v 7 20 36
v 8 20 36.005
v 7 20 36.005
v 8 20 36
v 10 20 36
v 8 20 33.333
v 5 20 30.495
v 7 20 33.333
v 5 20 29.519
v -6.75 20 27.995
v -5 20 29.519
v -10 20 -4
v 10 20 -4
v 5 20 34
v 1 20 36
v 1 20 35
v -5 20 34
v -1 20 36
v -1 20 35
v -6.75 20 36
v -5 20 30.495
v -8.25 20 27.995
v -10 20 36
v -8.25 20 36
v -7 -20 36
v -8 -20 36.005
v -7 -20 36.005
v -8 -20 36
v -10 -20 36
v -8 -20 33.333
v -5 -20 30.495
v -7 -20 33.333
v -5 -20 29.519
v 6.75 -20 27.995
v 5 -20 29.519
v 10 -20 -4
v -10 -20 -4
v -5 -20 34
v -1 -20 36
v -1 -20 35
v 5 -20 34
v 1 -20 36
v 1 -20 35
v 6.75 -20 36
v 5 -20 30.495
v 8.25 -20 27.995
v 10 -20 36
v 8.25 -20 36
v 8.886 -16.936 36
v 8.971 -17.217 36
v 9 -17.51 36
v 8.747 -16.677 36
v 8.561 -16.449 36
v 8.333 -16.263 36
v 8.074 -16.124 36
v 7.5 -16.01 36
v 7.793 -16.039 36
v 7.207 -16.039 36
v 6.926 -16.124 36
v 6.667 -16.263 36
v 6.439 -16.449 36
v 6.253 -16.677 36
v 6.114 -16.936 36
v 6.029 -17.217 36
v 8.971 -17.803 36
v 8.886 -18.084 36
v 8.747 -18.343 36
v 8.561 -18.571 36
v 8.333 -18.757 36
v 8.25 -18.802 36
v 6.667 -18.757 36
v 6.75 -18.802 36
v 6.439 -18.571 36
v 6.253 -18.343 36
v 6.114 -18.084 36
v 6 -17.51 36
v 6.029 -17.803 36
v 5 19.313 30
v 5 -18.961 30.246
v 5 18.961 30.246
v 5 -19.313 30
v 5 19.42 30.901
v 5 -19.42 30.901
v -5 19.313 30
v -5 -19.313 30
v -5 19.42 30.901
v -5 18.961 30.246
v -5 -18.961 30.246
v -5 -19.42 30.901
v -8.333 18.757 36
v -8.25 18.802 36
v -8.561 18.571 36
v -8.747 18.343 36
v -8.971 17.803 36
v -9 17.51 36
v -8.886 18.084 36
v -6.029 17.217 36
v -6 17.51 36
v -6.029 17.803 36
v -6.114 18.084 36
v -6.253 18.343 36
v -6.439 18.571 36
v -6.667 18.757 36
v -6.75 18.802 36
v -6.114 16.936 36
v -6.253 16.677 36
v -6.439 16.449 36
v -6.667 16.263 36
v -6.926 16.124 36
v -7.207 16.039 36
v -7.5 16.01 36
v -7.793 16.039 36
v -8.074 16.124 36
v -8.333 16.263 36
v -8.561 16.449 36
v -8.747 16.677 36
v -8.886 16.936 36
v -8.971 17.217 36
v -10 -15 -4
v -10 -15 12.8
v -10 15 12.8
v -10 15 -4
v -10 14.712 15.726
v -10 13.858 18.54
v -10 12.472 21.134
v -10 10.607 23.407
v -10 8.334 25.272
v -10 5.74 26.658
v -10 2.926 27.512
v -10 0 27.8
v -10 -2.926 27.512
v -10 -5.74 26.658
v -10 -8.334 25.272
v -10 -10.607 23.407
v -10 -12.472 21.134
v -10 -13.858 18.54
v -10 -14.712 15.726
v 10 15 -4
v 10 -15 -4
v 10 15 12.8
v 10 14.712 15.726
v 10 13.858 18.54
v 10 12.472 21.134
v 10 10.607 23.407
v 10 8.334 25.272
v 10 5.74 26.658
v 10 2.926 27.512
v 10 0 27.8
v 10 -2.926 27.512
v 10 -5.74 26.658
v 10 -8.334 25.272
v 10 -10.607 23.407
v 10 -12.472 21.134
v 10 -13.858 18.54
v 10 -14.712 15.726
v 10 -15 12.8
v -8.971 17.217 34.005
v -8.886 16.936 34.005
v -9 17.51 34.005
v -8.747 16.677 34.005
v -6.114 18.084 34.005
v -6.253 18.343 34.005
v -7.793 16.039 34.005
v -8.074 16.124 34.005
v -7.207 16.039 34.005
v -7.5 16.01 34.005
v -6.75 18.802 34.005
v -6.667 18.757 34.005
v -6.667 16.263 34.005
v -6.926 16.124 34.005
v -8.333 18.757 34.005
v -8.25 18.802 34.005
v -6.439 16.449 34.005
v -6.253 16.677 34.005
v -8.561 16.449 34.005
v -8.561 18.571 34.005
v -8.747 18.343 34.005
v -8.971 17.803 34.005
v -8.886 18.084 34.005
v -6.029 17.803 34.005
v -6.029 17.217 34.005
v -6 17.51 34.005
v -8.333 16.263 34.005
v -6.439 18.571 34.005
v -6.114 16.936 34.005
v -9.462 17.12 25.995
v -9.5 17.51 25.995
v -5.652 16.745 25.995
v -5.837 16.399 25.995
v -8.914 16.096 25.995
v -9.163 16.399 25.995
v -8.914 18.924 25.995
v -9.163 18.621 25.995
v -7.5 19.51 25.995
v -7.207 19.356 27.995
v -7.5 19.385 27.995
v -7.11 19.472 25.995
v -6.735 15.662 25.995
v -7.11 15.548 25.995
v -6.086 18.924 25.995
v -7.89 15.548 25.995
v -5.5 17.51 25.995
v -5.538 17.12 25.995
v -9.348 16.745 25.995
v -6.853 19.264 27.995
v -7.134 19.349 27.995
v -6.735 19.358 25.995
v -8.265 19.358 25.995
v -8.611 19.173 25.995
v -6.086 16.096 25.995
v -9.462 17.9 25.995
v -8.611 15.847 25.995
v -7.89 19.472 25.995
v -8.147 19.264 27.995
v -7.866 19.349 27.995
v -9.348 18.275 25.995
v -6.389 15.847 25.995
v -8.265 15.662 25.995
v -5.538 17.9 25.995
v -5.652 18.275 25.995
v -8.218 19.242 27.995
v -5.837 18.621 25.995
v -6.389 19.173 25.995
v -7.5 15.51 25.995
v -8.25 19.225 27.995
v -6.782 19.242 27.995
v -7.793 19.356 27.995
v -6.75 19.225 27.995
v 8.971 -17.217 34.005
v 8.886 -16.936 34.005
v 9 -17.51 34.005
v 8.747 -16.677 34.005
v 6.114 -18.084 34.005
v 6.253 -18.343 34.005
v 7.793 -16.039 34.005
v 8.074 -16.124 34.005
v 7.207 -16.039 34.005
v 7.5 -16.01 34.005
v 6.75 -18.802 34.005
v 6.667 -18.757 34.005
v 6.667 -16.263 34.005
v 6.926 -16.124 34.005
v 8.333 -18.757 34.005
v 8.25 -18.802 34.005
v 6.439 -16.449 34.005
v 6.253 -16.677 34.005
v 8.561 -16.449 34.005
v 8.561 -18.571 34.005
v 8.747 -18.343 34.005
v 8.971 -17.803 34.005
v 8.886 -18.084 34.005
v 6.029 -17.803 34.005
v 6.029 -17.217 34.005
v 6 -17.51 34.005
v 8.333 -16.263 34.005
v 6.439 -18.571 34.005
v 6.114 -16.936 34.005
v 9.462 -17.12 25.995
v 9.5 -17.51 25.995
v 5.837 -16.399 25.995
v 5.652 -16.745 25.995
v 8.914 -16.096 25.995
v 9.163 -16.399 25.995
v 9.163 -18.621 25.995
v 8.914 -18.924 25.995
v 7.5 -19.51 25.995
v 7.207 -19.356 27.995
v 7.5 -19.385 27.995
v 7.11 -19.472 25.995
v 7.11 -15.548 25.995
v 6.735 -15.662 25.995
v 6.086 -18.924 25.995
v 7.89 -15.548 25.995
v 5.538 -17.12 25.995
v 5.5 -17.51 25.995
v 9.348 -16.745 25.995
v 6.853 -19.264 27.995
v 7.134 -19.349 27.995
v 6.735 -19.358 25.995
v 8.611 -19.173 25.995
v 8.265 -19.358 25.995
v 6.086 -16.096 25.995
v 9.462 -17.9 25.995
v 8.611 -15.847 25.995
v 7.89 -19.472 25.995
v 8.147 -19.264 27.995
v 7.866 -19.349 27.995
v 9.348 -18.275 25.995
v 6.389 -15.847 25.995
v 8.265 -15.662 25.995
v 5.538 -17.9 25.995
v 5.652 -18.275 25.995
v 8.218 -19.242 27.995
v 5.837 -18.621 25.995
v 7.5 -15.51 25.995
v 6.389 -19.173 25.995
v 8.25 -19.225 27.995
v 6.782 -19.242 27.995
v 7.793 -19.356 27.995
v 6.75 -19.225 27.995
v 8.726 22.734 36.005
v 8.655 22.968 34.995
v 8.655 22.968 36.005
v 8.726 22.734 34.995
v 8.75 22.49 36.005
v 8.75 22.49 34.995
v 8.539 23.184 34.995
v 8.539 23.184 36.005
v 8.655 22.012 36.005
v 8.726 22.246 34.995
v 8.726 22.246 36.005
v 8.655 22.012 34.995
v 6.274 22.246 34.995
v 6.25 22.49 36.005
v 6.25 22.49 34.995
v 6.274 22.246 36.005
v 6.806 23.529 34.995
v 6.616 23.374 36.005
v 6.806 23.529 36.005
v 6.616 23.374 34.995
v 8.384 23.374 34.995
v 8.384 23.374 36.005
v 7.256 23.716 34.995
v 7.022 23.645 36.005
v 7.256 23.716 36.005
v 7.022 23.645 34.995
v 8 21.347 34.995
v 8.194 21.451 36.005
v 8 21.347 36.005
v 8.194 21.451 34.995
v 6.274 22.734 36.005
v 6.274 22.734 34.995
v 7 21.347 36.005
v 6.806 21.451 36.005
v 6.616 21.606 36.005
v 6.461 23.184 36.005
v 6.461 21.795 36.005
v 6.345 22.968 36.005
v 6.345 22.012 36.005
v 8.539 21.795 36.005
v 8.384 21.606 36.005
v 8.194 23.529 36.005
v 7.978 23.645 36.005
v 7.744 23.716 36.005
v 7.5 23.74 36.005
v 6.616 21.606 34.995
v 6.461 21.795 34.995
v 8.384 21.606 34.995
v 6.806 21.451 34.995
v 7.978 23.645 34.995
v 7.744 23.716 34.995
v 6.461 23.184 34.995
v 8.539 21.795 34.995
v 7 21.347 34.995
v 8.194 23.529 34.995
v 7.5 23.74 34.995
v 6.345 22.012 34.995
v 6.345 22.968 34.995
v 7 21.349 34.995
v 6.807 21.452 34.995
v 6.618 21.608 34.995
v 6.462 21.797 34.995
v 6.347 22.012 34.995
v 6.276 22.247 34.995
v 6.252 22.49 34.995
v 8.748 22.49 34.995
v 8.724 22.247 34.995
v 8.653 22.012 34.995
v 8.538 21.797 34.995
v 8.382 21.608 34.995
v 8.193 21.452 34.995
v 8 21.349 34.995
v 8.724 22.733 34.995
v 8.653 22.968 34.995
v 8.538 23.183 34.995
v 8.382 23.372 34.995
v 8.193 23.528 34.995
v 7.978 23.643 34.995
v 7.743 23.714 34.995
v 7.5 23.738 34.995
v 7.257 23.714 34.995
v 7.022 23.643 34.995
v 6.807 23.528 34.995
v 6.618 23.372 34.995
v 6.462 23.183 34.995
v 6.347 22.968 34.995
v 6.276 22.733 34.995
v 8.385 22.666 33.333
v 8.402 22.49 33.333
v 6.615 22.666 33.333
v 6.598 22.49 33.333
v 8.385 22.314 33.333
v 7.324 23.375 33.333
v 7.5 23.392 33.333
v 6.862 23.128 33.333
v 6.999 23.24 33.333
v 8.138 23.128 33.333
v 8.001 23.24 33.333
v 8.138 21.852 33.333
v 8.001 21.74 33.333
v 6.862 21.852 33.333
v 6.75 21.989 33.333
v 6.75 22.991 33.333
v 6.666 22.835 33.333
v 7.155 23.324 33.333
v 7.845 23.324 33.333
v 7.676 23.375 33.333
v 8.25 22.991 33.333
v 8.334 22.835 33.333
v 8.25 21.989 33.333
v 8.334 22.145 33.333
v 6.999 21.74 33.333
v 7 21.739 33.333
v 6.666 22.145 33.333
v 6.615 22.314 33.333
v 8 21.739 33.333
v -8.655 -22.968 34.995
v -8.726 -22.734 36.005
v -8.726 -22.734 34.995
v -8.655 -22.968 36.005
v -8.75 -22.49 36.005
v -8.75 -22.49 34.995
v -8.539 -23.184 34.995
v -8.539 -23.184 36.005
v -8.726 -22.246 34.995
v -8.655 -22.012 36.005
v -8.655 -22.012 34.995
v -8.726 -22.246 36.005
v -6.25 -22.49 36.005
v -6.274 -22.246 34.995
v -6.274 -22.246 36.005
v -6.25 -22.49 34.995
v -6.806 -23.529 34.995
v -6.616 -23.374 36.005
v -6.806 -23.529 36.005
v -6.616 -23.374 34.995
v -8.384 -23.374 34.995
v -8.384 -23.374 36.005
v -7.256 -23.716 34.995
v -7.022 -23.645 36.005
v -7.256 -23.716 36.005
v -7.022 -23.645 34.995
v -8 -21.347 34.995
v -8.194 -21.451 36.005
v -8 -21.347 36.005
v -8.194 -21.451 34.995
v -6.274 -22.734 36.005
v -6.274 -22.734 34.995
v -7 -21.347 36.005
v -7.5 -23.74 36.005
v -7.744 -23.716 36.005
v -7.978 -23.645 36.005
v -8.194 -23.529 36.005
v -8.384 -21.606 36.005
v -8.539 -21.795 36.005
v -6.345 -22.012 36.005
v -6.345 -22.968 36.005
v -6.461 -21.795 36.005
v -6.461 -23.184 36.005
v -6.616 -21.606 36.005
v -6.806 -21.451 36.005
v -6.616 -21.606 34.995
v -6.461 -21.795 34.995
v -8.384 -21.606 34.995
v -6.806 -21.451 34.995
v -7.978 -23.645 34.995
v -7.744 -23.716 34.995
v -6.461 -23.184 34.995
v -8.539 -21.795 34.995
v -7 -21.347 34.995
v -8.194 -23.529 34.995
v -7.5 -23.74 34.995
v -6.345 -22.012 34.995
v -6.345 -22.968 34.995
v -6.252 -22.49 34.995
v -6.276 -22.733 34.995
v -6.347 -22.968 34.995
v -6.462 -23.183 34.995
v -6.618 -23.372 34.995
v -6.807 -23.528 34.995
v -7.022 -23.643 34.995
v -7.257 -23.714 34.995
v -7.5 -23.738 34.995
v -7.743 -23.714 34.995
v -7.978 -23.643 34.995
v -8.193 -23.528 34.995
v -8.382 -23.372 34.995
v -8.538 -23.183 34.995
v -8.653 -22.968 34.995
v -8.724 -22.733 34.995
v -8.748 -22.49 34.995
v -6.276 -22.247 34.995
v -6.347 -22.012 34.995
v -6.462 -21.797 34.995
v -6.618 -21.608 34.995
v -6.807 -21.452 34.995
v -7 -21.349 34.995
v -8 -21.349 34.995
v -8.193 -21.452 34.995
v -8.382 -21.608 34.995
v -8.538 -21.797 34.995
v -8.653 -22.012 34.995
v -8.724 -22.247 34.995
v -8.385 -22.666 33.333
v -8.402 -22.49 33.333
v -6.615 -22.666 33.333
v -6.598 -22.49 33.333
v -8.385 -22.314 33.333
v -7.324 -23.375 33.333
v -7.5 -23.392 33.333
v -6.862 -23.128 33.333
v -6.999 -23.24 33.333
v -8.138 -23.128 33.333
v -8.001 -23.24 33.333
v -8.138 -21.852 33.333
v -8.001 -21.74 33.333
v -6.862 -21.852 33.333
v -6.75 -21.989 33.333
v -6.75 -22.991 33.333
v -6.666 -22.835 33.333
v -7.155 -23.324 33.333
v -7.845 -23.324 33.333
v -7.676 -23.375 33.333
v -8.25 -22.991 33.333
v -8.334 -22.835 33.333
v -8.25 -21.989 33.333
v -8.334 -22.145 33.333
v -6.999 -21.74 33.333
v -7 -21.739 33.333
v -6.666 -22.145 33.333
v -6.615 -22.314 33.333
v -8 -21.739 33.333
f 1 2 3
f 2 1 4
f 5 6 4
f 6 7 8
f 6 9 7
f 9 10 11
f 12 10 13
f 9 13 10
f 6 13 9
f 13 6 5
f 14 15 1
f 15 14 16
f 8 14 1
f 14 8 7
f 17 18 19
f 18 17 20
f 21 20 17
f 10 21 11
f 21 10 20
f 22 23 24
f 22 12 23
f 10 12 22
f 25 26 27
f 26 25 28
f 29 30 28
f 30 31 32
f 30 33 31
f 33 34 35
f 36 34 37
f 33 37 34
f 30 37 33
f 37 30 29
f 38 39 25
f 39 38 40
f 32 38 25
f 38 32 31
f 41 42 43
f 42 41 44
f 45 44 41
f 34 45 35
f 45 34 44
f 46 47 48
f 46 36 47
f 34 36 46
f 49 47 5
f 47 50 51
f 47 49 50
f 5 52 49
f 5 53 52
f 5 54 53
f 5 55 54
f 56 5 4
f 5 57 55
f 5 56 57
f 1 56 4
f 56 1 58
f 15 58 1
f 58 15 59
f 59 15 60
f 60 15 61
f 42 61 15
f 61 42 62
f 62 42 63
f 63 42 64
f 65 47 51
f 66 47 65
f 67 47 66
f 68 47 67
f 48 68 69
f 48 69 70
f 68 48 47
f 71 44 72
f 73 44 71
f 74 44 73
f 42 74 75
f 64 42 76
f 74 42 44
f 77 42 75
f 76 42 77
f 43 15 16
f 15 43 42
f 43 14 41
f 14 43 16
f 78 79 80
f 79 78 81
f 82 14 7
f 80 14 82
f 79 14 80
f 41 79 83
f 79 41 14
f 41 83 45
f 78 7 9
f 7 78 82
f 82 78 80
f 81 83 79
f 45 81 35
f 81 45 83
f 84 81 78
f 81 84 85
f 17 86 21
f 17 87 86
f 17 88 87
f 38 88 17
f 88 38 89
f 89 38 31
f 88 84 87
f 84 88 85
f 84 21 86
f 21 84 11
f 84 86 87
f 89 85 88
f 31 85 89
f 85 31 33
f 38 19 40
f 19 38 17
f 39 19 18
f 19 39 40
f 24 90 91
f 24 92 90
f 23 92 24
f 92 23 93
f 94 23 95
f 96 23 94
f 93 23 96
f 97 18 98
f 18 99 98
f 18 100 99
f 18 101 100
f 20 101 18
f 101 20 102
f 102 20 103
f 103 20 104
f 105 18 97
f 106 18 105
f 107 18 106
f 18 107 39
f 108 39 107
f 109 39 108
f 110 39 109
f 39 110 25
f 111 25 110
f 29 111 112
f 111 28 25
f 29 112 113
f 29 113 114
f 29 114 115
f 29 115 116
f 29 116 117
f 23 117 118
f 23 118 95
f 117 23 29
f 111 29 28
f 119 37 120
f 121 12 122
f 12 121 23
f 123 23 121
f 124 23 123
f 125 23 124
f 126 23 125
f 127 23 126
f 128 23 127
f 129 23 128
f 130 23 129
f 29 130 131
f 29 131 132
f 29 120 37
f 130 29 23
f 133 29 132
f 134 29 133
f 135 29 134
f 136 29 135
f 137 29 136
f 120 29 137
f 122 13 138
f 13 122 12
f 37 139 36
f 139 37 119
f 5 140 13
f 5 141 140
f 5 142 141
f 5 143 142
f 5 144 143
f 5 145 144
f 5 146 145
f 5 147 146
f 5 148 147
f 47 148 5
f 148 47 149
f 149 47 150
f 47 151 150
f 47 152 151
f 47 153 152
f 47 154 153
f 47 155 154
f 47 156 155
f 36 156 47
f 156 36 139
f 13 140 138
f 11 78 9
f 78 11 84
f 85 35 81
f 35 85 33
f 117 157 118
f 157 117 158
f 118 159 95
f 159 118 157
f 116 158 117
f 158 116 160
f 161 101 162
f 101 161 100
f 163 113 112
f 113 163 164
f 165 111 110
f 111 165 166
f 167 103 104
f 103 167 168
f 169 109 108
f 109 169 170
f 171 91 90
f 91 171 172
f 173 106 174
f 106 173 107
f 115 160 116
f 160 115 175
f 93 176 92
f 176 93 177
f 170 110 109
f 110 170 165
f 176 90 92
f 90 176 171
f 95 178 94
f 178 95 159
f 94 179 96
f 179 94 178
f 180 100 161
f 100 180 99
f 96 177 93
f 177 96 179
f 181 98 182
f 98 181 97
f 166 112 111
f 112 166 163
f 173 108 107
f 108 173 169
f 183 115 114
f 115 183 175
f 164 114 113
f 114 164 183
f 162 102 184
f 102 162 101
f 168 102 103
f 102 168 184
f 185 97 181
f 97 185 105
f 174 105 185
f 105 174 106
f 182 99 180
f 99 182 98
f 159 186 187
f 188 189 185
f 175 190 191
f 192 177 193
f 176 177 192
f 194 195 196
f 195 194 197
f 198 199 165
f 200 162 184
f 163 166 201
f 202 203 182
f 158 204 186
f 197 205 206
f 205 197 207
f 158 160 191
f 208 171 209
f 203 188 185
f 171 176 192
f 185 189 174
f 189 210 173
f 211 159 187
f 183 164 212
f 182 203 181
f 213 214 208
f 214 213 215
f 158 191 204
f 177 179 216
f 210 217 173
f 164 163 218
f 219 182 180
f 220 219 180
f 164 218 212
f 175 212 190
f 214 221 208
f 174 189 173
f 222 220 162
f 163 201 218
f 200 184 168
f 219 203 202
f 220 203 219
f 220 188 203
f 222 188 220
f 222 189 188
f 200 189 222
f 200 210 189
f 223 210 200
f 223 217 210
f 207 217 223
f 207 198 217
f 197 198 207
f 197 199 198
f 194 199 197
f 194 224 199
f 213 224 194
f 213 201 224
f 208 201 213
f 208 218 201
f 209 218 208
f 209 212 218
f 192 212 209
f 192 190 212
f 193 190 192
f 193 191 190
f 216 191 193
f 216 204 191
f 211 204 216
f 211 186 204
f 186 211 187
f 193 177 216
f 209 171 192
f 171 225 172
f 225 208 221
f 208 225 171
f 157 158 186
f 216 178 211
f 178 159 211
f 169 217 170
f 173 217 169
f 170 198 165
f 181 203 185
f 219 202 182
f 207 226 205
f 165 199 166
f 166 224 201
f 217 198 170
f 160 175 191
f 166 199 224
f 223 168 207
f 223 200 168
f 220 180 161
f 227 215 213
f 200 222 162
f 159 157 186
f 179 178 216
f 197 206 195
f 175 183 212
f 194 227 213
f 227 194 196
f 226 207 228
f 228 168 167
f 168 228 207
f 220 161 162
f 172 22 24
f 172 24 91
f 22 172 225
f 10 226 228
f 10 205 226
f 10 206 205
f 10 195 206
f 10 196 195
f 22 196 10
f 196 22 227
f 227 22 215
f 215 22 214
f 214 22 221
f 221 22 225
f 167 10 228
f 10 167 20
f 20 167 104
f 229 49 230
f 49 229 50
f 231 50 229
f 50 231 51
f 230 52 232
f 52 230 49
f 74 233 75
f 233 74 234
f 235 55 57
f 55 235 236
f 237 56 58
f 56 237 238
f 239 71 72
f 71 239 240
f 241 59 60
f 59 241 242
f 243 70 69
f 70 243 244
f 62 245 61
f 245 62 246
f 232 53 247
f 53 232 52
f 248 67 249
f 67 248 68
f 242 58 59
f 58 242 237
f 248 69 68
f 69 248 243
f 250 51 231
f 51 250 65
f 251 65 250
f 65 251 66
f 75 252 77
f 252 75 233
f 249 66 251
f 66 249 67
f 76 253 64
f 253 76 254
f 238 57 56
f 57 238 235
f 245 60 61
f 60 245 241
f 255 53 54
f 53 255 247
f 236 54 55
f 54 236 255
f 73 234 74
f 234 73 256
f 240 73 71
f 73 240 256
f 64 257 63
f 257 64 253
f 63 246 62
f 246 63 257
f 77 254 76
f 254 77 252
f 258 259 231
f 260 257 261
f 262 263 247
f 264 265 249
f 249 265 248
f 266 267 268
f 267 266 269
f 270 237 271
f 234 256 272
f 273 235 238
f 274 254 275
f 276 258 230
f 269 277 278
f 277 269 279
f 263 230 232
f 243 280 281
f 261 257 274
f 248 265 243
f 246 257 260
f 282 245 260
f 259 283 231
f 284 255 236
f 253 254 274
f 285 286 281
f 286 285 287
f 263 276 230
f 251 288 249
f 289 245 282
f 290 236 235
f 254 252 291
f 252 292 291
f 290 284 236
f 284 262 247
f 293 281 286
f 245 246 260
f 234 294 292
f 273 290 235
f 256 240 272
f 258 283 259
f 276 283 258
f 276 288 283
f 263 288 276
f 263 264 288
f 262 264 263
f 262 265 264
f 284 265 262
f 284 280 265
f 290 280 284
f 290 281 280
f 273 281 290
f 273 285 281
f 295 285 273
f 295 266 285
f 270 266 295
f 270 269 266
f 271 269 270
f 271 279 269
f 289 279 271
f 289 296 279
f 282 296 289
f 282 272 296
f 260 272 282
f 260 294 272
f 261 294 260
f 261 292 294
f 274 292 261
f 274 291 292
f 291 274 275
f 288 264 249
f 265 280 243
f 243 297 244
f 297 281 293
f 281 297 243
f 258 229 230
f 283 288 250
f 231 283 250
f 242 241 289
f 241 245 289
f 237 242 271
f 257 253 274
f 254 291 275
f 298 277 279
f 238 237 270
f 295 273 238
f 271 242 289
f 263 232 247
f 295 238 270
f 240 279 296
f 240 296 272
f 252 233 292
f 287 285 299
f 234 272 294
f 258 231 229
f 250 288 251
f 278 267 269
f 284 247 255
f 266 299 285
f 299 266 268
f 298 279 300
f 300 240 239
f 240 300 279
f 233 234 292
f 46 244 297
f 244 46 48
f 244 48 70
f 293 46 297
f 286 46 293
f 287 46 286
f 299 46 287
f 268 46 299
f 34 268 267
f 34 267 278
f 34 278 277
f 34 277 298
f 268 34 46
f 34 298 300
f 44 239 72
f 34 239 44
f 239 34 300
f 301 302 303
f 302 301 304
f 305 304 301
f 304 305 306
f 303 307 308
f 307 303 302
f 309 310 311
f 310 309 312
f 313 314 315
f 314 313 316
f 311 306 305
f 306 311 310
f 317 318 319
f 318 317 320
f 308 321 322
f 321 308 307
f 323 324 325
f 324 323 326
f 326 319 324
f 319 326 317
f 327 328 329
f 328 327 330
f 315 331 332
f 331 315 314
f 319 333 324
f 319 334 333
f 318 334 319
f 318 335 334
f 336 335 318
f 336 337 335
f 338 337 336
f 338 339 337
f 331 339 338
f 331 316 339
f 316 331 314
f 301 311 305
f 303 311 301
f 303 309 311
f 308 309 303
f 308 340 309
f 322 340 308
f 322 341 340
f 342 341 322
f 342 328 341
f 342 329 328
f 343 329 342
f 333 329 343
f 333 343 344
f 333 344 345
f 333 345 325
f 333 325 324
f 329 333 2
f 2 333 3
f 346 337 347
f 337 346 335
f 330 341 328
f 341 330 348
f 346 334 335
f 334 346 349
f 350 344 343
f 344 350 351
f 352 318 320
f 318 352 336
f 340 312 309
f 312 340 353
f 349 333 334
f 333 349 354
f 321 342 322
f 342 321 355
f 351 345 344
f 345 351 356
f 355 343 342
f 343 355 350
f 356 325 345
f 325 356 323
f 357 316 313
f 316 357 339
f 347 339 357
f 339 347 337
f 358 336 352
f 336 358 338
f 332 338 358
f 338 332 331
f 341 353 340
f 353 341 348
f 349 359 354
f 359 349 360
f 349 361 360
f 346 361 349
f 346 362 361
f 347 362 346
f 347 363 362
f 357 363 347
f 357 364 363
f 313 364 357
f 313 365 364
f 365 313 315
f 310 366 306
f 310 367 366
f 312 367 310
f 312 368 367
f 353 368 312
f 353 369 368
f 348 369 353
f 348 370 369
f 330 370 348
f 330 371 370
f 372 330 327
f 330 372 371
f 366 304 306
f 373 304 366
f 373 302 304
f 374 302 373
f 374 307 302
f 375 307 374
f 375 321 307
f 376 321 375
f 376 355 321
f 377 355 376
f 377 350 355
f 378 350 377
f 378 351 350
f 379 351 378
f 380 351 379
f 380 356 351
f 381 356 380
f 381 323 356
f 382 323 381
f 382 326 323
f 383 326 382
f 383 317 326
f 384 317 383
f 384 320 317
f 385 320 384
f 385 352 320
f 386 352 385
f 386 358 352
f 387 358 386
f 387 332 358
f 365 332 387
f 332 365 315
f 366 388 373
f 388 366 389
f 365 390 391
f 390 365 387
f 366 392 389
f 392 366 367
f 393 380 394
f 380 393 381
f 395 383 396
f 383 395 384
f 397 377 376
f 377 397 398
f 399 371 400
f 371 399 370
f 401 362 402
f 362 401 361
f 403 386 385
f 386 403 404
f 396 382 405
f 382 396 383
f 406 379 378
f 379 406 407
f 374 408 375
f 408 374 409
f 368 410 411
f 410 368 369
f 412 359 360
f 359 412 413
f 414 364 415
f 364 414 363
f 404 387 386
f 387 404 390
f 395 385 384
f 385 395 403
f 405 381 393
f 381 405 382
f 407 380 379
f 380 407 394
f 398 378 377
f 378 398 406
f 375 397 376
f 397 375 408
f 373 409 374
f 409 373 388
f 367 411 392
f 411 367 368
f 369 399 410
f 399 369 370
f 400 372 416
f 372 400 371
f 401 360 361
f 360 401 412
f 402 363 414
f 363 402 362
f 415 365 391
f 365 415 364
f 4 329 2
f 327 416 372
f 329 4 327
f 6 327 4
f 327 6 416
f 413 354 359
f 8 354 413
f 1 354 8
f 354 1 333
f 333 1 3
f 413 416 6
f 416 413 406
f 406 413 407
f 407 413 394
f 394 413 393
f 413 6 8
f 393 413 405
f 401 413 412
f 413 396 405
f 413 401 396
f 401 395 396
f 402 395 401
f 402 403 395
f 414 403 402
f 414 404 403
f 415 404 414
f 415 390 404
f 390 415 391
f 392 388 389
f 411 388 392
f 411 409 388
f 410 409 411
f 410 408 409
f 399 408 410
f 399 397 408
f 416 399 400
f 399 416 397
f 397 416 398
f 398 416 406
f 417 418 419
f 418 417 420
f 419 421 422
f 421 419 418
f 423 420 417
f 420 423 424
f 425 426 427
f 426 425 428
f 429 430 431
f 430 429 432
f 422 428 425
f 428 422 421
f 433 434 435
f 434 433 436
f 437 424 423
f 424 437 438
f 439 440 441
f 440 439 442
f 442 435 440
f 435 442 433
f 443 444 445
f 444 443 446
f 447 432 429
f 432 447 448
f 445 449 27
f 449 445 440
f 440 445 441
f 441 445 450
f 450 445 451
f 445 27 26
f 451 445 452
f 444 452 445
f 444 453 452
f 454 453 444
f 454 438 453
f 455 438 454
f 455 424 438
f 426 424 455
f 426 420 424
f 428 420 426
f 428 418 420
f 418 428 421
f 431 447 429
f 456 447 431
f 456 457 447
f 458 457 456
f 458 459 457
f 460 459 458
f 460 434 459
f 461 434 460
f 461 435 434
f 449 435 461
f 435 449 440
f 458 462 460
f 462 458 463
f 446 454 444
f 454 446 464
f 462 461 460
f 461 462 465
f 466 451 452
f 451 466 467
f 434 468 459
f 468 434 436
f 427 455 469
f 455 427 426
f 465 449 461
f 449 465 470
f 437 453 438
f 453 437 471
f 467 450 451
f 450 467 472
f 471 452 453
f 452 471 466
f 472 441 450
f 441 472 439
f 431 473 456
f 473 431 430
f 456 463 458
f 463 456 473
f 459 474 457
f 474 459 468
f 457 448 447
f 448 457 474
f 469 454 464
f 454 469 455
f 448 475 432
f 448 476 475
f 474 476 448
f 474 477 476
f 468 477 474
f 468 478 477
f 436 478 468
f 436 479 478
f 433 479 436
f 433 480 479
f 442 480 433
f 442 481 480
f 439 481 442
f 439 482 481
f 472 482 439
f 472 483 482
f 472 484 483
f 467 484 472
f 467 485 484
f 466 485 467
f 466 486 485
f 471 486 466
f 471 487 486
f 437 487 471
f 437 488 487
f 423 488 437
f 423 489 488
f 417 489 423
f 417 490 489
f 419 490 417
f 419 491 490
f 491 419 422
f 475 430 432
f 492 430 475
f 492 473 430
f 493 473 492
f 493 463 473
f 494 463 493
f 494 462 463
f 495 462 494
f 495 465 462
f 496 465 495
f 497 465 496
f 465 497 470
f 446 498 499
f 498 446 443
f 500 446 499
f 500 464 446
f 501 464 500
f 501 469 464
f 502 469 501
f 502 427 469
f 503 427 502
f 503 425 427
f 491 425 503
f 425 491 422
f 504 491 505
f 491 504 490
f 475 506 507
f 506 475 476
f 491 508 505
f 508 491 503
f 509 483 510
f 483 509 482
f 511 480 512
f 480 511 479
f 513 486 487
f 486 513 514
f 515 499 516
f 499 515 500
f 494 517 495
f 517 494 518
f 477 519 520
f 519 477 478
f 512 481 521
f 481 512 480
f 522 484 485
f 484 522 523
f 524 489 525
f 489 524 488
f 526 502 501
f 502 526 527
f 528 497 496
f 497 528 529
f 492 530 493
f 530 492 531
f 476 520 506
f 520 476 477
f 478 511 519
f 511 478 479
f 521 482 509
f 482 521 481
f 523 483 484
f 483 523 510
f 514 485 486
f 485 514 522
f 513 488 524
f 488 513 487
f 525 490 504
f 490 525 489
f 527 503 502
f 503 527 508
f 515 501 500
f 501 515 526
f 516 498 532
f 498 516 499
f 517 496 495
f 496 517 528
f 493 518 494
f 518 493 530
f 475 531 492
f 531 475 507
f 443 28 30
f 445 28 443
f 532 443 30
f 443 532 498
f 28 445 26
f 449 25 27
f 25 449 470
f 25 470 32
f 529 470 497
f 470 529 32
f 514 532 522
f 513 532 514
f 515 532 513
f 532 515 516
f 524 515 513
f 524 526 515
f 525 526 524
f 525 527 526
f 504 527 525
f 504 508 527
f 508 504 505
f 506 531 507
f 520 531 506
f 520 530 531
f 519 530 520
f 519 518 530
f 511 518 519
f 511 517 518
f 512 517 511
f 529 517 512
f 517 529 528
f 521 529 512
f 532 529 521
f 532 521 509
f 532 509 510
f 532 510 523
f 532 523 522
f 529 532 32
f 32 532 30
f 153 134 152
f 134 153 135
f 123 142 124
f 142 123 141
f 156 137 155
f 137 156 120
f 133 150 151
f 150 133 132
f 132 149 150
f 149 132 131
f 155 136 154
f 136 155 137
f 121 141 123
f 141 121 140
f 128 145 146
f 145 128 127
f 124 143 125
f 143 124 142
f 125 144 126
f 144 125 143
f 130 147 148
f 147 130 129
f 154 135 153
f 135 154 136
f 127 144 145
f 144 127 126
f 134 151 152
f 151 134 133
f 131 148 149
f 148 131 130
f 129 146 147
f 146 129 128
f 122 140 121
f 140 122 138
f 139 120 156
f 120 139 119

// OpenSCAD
/*

  ttt_high_straight_1.scad

  (c) olikraus@gmail.com

  This work is licensed under the Creative Commons Attribution-NonCommercial-ShareAlike 4.0 International License. 
  To view a copy of this license, visit http://creativecommons.org/licenses/by-nc-sa/4.0/.
  
  straight one grid tile train tube track

*/
include <train_tube_track.scad>;

difference() {
    translate([0, 0, height])
    straight_track_h_double_plug(grid);
    gate_cutout();
}

/*
translate([grid, 0,0])
rotate([0,0,90])
platform(is_base=false, side_fix = 0);

*/
